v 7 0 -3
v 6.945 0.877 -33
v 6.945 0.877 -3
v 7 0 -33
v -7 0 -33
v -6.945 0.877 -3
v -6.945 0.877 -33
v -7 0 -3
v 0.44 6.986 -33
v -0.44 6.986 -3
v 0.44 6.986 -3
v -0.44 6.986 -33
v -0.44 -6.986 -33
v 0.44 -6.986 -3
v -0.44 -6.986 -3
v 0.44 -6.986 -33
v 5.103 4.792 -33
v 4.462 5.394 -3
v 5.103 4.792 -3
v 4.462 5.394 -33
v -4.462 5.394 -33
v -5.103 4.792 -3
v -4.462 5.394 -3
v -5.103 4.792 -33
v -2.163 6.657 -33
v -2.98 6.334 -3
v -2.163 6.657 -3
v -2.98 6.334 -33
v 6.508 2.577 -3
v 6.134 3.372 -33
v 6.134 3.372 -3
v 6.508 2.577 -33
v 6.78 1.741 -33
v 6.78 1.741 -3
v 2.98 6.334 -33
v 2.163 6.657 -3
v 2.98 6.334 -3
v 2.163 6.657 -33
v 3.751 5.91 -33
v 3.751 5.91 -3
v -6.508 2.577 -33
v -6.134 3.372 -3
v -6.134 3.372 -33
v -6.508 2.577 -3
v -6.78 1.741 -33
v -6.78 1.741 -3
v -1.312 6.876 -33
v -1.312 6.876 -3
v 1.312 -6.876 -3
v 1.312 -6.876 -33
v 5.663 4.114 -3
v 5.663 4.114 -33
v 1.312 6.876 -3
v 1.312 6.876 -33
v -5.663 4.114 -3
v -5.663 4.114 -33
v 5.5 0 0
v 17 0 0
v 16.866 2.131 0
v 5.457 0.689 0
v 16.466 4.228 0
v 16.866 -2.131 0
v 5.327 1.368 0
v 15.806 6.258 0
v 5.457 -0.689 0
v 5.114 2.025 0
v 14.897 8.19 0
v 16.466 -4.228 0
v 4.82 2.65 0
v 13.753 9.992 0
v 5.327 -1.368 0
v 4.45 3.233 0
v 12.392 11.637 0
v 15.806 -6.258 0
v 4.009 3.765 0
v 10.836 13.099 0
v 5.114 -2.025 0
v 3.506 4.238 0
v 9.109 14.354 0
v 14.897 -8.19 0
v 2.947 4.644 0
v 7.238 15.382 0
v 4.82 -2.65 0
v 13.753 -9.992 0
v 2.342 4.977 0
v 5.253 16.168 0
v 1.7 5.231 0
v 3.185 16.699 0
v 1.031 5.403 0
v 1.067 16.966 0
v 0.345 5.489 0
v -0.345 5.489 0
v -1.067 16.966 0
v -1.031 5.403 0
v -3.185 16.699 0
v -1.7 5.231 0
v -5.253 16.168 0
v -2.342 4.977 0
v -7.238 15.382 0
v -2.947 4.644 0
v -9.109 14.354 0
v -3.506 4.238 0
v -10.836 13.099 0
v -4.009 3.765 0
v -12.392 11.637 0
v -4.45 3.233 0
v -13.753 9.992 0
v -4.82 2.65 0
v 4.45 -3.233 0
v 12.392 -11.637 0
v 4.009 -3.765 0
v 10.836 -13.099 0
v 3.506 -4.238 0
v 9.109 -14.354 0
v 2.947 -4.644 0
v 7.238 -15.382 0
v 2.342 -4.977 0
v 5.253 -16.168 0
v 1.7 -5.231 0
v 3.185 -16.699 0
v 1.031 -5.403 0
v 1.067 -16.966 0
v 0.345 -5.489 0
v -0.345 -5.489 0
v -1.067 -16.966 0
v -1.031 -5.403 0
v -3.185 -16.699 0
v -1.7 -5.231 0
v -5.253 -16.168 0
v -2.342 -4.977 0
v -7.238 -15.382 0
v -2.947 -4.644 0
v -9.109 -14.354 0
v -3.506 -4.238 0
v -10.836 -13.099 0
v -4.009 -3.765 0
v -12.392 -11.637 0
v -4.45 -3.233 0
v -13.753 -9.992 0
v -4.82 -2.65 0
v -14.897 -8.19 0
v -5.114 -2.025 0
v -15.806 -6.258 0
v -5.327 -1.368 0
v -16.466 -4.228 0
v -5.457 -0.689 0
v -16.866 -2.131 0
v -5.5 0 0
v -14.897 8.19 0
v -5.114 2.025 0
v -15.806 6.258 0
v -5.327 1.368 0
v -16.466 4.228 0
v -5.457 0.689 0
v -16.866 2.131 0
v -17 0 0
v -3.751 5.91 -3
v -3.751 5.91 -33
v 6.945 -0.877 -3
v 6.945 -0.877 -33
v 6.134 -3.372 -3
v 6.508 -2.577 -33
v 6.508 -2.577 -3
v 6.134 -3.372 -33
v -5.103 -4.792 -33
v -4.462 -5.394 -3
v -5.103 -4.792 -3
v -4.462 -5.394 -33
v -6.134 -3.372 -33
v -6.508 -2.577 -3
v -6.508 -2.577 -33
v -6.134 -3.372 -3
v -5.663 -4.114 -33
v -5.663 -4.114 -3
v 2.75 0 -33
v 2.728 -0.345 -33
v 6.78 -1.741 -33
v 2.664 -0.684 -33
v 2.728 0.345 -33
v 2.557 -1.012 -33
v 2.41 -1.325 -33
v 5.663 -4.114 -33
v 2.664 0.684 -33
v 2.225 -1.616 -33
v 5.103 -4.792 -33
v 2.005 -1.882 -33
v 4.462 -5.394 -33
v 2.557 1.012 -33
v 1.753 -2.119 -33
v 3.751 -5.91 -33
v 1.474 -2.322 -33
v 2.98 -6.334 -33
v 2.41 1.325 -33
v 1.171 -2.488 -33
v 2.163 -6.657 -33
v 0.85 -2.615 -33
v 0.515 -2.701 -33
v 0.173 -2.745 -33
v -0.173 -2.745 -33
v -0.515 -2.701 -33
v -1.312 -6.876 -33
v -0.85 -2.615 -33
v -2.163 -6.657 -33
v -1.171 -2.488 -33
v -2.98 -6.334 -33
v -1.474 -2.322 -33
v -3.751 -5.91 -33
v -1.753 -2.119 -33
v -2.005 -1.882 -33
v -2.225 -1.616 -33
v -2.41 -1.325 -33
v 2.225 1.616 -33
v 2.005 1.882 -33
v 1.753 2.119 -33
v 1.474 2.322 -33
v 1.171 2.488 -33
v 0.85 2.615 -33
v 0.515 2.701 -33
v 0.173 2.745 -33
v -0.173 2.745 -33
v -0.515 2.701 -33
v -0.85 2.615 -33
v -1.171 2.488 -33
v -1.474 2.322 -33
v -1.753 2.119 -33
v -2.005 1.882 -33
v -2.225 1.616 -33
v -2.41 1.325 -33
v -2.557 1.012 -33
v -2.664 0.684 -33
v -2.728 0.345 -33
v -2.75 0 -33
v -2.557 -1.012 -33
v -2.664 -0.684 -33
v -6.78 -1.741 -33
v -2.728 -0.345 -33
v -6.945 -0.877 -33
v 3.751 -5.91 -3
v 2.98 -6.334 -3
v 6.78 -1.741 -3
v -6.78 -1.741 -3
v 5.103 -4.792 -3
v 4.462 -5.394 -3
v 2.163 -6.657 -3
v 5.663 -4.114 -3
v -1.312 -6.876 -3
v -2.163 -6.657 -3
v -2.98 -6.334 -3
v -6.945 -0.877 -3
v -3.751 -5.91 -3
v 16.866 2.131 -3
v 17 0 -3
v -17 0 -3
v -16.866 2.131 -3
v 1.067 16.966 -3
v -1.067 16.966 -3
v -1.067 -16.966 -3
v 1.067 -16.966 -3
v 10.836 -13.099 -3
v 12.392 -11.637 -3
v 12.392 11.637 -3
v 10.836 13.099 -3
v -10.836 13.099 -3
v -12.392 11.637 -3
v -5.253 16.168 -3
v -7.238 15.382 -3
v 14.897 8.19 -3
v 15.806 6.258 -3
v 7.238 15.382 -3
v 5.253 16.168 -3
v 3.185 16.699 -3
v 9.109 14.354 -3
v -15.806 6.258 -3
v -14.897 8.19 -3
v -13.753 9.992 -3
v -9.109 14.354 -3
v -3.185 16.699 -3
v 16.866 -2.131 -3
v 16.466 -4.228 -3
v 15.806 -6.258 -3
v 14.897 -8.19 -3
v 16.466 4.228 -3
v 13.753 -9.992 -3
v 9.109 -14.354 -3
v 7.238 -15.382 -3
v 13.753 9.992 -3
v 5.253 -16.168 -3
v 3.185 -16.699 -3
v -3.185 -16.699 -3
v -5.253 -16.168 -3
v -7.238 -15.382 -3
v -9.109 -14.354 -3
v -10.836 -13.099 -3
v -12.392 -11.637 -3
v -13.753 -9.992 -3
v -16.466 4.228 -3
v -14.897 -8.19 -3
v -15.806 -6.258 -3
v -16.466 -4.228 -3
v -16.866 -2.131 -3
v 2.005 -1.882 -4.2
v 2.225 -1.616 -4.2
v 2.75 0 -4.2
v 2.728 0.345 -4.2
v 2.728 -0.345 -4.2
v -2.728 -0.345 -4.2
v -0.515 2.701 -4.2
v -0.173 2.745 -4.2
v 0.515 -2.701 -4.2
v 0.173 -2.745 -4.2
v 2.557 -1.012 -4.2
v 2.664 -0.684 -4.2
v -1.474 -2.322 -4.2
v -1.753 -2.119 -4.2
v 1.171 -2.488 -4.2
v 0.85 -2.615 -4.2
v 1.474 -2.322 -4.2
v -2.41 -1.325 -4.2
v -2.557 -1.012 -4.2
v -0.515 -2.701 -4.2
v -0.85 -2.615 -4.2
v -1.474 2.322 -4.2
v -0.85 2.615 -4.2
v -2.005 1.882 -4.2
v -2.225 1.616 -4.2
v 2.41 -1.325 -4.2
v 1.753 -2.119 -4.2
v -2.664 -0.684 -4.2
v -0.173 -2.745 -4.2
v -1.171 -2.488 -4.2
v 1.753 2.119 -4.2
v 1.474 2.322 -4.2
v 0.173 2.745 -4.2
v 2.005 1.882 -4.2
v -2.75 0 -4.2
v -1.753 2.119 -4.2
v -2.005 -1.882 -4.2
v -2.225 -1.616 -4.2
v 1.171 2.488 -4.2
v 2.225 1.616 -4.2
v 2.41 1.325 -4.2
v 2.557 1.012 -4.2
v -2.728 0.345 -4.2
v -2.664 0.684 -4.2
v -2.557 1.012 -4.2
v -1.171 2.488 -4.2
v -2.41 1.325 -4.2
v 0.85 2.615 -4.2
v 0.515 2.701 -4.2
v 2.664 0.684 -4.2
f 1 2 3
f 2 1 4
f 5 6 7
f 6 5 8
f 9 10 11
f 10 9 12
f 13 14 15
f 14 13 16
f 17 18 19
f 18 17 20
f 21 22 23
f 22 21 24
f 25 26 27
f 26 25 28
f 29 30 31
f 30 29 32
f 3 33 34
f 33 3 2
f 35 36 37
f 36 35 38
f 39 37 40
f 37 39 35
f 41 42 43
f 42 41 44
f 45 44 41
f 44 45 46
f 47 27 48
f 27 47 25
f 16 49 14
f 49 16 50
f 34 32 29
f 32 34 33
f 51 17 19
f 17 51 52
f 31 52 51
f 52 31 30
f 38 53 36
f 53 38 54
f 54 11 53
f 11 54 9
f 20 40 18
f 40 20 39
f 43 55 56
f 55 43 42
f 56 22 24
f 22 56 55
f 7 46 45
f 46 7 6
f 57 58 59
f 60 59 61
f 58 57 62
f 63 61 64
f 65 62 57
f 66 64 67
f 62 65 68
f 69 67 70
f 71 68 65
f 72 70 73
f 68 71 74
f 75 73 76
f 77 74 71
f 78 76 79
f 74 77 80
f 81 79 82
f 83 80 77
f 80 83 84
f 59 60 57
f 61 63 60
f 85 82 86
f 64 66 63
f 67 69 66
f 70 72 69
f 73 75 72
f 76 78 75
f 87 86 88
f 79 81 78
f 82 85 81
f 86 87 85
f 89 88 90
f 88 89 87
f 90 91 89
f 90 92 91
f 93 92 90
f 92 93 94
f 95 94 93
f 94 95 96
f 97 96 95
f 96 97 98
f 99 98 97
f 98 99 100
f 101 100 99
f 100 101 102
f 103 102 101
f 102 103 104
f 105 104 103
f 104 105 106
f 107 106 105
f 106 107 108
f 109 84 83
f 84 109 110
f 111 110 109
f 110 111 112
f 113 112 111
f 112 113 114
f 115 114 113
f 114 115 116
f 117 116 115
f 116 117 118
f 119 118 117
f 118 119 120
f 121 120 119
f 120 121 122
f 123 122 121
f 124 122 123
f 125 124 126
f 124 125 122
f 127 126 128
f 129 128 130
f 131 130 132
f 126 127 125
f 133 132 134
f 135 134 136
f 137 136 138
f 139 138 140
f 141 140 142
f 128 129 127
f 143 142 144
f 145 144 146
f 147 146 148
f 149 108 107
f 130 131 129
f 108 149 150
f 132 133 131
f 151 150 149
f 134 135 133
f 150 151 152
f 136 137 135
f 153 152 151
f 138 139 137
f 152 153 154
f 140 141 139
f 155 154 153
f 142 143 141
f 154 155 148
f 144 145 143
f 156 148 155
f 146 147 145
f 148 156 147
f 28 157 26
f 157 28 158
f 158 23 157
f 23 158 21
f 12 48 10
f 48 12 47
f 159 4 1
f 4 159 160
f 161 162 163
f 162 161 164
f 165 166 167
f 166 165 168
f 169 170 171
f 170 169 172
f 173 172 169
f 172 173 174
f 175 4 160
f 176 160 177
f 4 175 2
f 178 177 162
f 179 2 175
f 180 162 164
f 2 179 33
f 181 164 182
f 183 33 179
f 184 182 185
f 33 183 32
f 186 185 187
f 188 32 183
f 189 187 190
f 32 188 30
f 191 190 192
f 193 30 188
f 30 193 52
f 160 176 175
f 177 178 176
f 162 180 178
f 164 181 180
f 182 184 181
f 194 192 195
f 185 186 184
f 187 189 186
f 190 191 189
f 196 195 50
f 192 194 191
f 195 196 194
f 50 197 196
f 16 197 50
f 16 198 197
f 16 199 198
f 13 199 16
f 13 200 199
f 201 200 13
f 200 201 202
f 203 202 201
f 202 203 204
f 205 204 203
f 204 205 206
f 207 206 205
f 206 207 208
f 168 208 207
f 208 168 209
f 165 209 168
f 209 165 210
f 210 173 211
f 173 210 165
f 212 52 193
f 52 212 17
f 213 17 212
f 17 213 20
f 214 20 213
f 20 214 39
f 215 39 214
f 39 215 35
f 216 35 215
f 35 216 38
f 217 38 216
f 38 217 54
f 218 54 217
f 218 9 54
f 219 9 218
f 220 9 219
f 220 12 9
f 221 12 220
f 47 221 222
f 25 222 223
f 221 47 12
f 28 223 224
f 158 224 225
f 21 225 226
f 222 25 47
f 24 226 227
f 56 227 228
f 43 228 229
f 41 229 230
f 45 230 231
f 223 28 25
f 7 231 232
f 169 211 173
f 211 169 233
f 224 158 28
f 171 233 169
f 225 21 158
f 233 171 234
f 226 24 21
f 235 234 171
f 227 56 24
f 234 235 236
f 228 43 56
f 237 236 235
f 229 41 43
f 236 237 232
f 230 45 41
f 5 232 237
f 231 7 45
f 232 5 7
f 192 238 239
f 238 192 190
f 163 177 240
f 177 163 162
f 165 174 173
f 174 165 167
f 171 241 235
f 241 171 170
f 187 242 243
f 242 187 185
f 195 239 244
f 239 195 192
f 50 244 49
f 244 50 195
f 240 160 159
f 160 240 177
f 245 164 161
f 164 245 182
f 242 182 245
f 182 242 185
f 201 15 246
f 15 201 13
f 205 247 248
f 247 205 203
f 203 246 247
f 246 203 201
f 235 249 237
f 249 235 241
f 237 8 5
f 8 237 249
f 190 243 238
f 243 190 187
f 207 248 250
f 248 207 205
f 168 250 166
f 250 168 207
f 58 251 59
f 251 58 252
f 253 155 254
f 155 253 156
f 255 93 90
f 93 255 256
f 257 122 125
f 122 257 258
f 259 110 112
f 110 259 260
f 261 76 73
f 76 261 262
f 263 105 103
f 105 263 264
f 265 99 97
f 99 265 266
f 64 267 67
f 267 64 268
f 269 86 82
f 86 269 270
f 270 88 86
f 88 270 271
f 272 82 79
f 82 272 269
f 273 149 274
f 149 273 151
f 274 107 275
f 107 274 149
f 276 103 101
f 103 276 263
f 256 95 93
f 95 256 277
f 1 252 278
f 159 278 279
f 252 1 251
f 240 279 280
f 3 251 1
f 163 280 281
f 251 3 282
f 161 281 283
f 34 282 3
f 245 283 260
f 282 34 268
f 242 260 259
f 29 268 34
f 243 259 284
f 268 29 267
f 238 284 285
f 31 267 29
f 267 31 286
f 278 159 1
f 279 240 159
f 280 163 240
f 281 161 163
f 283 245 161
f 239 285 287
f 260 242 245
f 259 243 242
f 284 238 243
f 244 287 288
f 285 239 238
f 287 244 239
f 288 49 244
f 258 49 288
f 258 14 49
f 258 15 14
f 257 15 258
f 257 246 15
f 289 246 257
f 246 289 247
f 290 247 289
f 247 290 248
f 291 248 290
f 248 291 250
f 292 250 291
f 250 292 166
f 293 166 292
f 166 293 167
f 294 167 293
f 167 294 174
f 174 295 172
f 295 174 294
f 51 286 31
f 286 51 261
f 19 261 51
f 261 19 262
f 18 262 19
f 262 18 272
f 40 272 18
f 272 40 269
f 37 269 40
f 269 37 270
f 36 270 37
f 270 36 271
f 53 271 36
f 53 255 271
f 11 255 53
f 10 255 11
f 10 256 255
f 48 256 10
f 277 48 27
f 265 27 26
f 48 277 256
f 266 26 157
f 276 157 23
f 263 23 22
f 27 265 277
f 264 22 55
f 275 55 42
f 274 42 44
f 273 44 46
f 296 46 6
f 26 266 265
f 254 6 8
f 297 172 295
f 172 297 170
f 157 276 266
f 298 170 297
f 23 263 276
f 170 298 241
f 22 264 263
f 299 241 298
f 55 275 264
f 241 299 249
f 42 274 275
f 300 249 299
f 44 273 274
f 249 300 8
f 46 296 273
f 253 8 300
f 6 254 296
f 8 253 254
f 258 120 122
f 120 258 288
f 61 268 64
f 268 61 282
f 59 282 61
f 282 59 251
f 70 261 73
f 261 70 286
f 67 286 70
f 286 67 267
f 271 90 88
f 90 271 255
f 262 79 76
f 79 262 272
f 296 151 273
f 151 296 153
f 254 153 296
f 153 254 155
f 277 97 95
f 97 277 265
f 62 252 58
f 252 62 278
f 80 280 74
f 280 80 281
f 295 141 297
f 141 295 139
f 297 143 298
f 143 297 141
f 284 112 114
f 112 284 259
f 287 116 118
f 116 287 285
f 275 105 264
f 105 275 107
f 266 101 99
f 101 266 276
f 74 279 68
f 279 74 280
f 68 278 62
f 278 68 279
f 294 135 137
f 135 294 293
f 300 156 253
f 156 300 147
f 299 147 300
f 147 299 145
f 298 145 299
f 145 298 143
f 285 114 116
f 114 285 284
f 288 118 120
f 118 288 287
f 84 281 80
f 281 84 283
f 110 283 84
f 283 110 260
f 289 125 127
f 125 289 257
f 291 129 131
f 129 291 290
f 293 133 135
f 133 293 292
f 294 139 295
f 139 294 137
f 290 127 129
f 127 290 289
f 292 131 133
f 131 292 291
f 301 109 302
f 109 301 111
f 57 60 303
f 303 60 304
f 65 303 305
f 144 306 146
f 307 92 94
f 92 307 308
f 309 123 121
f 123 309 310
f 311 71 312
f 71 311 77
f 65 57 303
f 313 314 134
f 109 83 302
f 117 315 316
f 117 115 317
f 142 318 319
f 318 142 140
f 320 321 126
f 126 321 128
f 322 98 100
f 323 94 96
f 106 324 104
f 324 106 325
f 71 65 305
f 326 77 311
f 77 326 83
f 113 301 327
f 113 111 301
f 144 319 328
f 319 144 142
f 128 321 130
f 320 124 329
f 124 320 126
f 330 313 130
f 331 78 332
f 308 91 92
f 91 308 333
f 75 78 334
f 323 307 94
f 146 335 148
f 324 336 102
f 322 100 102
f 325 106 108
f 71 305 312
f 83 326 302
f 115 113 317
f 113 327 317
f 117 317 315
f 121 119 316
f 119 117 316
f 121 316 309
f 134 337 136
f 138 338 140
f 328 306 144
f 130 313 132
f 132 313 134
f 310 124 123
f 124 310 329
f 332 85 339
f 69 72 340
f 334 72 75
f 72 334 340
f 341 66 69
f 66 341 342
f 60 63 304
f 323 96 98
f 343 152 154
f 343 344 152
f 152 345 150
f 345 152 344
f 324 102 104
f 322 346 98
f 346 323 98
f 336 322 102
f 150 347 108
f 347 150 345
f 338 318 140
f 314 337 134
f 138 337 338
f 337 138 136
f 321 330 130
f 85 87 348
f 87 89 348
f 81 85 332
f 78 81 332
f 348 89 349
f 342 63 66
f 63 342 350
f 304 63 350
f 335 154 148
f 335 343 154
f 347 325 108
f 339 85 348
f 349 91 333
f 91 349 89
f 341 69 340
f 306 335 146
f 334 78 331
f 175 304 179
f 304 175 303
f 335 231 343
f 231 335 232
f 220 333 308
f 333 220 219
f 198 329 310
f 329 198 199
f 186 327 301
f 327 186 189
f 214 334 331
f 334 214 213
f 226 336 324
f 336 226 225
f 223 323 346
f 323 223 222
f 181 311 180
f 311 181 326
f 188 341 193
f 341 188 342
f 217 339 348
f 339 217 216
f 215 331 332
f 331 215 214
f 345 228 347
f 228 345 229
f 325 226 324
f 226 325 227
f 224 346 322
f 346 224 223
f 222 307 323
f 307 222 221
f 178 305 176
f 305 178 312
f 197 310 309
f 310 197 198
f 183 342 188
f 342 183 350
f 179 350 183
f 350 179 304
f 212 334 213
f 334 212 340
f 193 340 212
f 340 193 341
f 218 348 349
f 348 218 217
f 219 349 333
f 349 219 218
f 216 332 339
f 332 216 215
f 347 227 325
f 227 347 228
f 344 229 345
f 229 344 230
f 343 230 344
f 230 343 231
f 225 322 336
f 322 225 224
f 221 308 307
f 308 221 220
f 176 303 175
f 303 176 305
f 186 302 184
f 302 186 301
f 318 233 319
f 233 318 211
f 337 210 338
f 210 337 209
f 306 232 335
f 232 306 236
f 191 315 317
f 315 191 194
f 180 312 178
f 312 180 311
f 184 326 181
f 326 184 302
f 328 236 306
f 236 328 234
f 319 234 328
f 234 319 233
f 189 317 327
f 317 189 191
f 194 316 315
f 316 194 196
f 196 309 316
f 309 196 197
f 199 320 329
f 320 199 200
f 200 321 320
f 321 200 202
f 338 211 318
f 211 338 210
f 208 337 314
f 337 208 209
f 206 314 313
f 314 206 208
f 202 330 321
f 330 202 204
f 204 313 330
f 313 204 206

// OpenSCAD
$fn = 50;


difference() {
	union() {
		translate(v = [0, 0, -33.0000000000]) {
			cylinder(h = 33, r = 7.0000000000);
		}
		translate(v = [0, 0, -3.0000000000]) {
			cylinder(h = 3, r = 17.0000000000);
		}
	}
	union() {
		translate(v = [0, 0, 0]) {
			rotate(a = [0, 0, 0]) {
				difference() {
					union() {
						#translate(v = [0, 0, -33.0000000000]) {
							cylinder(h = 33, r = 2.2500000000);
						}
						#translate(v = [0, 0, -4.2000000000]) {
							cylinder(h = 4.2000000000, r = 7.0000000000, r1 = 2.7500000000, r2 = 5.5000000000);
						}
						#translate(v = [0, 0, -33.0000000000]) {
							cylinder(h = 33, r = 2.7500000000);
						}
						#translate(v = [0, 0, -33.0000000000]) {
							cylinder(h = 33, r = 2.2500000000);
						}
					}
					union();
				}
			}
		}
	}
}
